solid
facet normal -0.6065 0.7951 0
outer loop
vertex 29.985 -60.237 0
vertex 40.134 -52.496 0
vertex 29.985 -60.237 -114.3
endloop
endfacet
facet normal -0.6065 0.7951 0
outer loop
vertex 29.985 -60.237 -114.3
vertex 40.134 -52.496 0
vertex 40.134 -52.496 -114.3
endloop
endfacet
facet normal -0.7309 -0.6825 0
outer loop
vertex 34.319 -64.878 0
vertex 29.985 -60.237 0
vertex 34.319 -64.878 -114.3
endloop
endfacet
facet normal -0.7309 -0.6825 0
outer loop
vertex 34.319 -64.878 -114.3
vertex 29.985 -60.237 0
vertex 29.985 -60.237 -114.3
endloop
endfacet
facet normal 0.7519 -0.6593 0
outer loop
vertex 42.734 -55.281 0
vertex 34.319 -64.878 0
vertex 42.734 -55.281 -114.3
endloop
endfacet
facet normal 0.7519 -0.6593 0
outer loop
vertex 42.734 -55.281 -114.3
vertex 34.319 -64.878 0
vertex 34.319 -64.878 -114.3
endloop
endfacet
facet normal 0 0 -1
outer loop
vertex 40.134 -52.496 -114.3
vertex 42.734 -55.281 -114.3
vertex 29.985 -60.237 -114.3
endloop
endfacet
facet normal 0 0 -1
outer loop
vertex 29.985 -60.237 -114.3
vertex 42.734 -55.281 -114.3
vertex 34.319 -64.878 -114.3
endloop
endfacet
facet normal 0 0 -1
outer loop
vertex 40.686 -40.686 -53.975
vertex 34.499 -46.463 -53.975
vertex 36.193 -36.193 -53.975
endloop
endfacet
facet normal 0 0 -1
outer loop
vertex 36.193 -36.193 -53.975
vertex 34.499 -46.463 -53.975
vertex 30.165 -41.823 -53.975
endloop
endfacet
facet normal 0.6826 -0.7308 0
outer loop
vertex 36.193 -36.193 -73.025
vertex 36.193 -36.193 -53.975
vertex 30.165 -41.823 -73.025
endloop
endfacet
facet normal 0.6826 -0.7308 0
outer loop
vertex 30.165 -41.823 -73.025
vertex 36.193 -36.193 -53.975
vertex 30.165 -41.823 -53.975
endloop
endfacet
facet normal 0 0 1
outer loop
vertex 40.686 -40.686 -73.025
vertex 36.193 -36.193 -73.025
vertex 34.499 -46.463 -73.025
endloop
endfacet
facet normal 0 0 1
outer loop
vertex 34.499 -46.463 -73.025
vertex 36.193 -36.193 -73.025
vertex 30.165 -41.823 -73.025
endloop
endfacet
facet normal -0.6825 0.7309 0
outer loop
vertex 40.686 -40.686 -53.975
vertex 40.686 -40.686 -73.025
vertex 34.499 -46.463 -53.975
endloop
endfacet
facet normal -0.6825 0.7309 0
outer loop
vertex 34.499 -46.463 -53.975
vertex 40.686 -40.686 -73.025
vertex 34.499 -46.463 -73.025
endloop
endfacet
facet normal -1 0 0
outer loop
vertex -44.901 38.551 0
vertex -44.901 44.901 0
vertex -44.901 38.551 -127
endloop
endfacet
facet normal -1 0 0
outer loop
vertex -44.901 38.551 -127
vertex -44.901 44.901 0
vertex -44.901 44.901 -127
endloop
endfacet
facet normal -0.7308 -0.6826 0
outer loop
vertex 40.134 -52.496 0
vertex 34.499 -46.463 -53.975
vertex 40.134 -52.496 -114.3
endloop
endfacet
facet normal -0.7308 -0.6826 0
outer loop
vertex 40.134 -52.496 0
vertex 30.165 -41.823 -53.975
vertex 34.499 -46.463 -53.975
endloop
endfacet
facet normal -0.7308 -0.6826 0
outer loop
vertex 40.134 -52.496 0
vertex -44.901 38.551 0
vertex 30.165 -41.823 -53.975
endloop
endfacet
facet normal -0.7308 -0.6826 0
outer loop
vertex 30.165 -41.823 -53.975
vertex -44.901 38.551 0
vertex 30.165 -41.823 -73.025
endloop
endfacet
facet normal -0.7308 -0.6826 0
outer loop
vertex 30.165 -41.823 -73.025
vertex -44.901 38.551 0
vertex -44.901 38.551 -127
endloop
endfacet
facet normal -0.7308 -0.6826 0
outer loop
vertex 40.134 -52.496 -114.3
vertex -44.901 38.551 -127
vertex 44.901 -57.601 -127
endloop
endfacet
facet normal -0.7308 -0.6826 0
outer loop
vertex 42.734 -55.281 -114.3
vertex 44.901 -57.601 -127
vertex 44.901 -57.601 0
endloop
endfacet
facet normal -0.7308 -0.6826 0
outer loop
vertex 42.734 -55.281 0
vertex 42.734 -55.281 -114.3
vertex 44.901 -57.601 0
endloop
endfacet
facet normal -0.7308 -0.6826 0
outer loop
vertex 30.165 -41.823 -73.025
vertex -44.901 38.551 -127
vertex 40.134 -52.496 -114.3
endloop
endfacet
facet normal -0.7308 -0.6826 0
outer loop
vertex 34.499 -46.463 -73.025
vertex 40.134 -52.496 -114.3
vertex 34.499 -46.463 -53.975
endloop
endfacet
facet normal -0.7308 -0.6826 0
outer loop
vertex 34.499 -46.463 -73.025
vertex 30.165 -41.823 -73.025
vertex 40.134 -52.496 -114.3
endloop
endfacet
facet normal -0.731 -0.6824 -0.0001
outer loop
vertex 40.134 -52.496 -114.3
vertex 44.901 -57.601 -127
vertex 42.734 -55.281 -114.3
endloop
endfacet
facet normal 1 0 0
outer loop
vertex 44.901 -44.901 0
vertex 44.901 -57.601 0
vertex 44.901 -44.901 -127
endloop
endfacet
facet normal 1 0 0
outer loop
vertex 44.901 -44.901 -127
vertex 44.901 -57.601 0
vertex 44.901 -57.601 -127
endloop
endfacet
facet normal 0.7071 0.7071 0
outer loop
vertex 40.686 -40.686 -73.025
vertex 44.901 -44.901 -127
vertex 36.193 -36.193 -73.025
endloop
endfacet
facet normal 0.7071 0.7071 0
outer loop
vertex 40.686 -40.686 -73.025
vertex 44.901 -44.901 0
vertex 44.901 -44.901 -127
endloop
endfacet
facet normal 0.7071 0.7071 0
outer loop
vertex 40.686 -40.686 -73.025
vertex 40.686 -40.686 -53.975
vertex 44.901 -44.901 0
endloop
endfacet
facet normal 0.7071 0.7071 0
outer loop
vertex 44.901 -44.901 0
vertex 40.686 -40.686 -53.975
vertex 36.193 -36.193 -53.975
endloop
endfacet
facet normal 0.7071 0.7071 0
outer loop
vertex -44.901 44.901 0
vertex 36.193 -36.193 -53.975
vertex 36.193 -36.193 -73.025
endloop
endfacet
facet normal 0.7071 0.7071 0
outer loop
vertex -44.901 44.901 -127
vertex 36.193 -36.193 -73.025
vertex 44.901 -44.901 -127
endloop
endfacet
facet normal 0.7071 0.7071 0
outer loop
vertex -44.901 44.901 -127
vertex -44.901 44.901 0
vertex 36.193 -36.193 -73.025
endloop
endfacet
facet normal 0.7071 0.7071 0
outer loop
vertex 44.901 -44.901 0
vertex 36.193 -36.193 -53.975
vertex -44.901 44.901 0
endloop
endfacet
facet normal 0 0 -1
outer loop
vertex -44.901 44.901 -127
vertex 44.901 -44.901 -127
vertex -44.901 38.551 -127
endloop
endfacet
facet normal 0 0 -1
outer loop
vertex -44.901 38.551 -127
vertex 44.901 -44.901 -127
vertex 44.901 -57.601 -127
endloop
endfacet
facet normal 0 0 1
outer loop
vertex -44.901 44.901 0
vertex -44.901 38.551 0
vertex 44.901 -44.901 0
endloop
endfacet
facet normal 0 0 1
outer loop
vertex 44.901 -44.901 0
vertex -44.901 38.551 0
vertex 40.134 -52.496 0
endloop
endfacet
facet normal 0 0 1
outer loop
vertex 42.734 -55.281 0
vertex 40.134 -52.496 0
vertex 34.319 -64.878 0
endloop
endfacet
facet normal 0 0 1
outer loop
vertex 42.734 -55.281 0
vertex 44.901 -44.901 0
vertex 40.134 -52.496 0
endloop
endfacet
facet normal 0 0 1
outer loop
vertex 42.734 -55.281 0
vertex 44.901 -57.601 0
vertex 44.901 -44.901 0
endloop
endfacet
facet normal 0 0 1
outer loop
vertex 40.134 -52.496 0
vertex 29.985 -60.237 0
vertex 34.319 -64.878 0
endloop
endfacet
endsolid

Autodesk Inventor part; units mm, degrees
ref_plane "YZ Plane" through (0, 0, 0) normal (1, 0, 0) x (0, 1, 0)
ref_plane "XZ Plane" through (0, 0, 0) normal (0, 1, 0) x (-1, 0, 0)
ref_plane "XY Plane" through (0, 0, 0) normal (0, 0, 1) x (1, 0, 0)
sketch "Sketch1" plane through (0, 0, 0) normal (0, 0, 1) x (1, 0, 0)
  line L0 (-44.9013, 44.9013) -> (44.9013, -44.9013)
  line L1 (-44.9013, 44.9013) -> (82.0987, 44.9013) construction
  line L2 (-44.9013, 44.9013) -> (-44.9013, 38.5513)
  line L3 (44.9013, -44.9013) -> (44.9013, -57.6013)
  line L4 (44.9013, -57.6013) -> (-44.9013, 38.5513)
  line L5 (-44.9013, 38.5513) -> (-44.9013, -83.0013) construction
  line L6 (-44.9013, 38.5513) -> (76.6513, 38.5513) construction
  line L7 (44.9013, -57.6013) -> (80.8223, -57.6013) construction
  line L8 (44.9013, -57.6013) -> (37.9664, -50.1761) construction
  line L9 (37.9664, -50.1761) -> (84.3883, -50.1761) construction
  point P0 (0, 0)
  point P1 (0, 0)
  dimension "d0" = 127
  dimension "d1" = 45
  dimension "d2" = 6.35
  dimension "d5" = 12.7
  dimension "d6" = 90
  dimension "d10" = 10.16
extrude "Extrusion1" add sketch "Sketch1" against normal blind 127
sketch "Sketch4" plane through (37.9664, -50.1761, -101.6) normal (-0.7308, -0.6826, 0) x (0, 0, 1)
  line L0 (0, -1.5843) -> (0, 0) projected
  line L1 (101.6, 0) -> (101.6, -1.5843) projected
  line L2 (28.575, 11.43) -> (47.625, 11.43)
  line L3 (47.625, 11.43) -> (47.625, 5.08)
  line L4 (47.625, 5.08) -> (28.575, 5.08)
  line L5 (28.575, 5.08) -> (28.575, 11.43)
  line L6 (101.6, 0) -> (-25.4, 0) construction
  line L7 (-25.4, 126.0475) -> (-25.4, -0.8785) projected
  point P0 (101.6, 62.5845)
  point P1 (38.1, 5.08)
  point P2 (38.1, 0)
  dimension "d24" = 19.05
  dimension "d25" = 6.35
  dimension "d34" = 5.08
extrude "Extrusion4" cut sketch "Sketch4" against normal up to next
sketch "Sketch5" plane through (0, 0, 0) normal (0, 0, 1) x (1, 0, 0)
  line L0 (44.9013, -57.6013) -> (37.9664, -50.1761) construction
  line L1 (44.9013, -57.6013) -> (-44.9013, 38.5513) projected
  line L2 (32.1524, -62.5572) -> (41.4339, -53.8887) construction
  line L3 (40.1336, -52.4965) -> (42.7341, -55.2809)
  line L4 (29.9852, -60.2368) -> (34.3195, -64.8776)
  line L5 (29.9852, -60.2368) -> (40.1336, -52.4965)
  line L6 (34.3195, -64.8776) -> (42.7341, -55.2809)
  point P0 (0, 0)
  dimension "d28" = 10.16
  dimension "d29" = 12.7
  dimension "d30" = 3.81
  dimension "d31" = 6.35
extrude "Extrusion5" add sketch "Sketch5" against normal blind 114.3
properties part number "proto_1_panel"
